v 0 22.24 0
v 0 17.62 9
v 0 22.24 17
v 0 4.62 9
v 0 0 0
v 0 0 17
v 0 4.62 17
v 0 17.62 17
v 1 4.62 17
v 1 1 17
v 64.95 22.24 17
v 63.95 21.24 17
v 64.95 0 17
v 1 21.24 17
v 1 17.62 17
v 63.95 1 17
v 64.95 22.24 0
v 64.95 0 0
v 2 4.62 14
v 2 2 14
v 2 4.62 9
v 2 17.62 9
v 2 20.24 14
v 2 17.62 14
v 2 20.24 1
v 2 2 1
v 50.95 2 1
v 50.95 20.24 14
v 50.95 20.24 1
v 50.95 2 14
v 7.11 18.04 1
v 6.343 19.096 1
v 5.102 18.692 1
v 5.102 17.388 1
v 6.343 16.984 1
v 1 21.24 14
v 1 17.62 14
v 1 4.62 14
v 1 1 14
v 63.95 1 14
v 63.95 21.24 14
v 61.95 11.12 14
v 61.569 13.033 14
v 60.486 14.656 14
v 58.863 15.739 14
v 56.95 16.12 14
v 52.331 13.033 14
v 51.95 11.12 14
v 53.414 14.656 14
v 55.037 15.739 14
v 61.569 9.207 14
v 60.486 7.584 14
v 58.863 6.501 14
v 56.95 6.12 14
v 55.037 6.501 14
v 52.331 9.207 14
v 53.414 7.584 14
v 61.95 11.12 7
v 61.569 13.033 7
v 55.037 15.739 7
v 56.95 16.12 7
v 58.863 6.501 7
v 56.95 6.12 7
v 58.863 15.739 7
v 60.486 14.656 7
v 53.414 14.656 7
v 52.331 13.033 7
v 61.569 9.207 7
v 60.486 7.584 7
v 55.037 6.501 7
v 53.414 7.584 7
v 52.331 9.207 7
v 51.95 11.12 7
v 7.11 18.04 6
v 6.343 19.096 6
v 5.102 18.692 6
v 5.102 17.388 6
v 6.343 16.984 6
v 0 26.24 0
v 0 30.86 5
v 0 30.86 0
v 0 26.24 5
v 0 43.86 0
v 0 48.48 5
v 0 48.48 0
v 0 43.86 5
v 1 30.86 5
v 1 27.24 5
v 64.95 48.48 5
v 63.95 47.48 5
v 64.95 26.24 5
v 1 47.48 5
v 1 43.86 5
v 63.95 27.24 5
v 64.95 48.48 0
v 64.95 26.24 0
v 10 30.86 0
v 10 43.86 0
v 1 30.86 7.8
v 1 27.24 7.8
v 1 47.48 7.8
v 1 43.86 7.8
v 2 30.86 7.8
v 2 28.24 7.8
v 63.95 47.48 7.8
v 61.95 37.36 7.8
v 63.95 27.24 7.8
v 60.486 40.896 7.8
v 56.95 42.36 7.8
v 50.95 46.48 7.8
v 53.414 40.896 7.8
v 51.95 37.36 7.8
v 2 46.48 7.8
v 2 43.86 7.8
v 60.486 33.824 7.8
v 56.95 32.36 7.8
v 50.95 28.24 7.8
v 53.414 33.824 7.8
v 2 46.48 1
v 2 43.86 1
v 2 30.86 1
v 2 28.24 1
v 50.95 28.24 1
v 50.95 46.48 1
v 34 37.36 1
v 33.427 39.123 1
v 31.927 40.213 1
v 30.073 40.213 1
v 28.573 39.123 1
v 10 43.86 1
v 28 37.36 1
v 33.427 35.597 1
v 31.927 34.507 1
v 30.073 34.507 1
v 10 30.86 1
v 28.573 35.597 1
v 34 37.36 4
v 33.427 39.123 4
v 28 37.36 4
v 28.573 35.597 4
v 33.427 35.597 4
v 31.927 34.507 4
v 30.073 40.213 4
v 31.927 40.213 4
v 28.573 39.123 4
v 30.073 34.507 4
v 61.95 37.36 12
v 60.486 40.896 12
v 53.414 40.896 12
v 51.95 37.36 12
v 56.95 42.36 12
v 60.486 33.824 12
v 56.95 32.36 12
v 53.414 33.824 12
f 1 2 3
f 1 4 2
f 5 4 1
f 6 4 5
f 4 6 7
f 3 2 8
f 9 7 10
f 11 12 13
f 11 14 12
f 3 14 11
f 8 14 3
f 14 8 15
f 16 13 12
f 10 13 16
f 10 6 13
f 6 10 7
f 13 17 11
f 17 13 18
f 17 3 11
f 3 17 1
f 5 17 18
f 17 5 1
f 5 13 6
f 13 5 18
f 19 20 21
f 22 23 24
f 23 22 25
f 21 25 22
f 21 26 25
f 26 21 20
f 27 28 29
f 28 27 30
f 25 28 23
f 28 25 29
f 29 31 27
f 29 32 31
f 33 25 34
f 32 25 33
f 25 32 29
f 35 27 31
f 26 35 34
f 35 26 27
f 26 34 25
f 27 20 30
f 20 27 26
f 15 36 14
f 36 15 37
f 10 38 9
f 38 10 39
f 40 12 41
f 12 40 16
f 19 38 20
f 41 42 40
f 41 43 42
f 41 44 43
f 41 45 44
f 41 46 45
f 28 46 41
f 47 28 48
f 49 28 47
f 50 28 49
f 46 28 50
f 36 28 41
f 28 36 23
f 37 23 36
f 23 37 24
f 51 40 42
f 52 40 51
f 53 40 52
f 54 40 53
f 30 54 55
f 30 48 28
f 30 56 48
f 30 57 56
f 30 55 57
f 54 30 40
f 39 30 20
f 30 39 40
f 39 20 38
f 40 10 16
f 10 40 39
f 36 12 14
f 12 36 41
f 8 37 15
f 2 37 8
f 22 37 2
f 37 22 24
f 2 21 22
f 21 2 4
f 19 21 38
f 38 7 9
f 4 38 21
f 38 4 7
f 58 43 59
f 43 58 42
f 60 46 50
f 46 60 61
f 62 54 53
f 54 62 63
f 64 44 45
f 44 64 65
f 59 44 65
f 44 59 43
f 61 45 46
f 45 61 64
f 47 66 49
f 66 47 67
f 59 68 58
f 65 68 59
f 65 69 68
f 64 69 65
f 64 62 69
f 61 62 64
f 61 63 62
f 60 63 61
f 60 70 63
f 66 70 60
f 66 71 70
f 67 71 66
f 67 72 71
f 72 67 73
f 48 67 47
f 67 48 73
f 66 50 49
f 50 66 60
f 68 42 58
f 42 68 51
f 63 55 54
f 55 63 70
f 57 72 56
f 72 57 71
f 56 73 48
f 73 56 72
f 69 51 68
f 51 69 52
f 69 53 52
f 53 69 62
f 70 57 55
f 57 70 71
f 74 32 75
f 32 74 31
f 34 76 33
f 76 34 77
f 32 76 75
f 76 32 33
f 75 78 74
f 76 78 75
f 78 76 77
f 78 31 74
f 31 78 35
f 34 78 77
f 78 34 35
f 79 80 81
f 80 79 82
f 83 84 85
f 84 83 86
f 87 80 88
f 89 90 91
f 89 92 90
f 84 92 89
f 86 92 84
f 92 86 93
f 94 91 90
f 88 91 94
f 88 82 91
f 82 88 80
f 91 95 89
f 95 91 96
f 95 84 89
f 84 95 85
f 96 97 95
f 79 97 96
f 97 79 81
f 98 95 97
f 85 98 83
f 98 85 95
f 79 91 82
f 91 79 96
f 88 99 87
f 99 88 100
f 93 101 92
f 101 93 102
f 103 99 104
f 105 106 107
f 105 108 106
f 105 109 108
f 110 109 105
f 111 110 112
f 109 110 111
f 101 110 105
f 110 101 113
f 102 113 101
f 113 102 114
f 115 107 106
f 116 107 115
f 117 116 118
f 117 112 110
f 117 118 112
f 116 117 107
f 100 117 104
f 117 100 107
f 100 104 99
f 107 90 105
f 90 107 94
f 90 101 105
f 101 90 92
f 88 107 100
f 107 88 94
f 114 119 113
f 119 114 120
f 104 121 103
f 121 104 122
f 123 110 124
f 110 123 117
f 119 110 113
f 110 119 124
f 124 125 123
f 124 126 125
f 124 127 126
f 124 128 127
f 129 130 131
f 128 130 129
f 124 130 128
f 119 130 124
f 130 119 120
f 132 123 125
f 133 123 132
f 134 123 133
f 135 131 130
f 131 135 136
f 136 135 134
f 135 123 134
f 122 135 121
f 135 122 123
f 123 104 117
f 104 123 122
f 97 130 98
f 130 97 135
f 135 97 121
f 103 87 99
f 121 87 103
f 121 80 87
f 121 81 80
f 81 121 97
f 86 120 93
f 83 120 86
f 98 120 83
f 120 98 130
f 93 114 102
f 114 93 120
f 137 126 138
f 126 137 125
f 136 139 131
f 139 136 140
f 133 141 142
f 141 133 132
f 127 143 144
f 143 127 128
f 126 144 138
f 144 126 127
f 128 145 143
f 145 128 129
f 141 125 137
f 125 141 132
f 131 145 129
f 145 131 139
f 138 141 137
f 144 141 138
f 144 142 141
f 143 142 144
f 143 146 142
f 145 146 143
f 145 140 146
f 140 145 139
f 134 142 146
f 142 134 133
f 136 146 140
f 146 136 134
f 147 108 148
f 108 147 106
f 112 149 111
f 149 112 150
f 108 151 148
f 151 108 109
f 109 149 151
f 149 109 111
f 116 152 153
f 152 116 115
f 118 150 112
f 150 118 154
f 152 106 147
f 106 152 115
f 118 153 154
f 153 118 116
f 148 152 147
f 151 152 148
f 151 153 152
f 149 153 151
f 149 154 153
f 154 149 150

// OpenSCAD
shield_length = 48.55;
shield_width = 17.84;
shield_board_height = 4; // approximate - with solder pins
shield_post_hole_radius = 1.11;
//shield_post_hole_radius = 2;

shield_post_hole_length_offset=3.8;
shield_post_hole_width_offset=2;
shield_post_height = shield_board_height + 1;
shield_post_sides=6; // determine shape of post

wall_thickness=2;
base_bottom_thickness=1;
roominess = 0.2;

base_post_platform_length = 12;
base_void_length =shield_length + 2 * roominess;
base_void_width = shield_width + 2 * roominess;
base_void_wall_height = 16;
 
base_length = base_void_length + 2 * wall_thickness + base_post_platform_length;
base_width = base_void_width + 2 * wall_thickness;
base_height = base_void_wall_height + base_bottom_thickness;

rim_overhang = wall_thickness / 2;
rim_depth = 3;

lid_void_length = base_void_length;
lid_void_width = base_void_width;
lid_void_height = 4;

lid_length = base_length;
lid_width = base_width;
lid_height = lid_void_height + base_bottom_thickness;

lid_post_radius=5;
lid_post_height=5;

usb_gap_width = 13;
    
base();

translate([0, base_width + 4, 0]){
  lid();
}

module lid(){
  difference(){
    union(){
      cube([
        lid_length,
        lid_width,
        lid_height
      ]);
      
      // rim
      translate([rim_overhang, rim_overhang, lid_height])
      cube([
        base_length - 2*rim_overhang,
        base_width - 2*rim_overhang,
        rim_depth - 0.2 
      ]);
    }

    translate([wall_thickness, wall_thickness,base_bottom_thickness])
    cube([
      lid_void_length,
      lid_void_width,
      lid_void_height + 20
    ]);
    
    // Hole for USB cable
    usb_gap_length = 10;
    translate([-1, (lid_width-usb_gap_width)/2, -1])
    cube([
      usb_gap_length + 1,
      usb_gap_width,
      20 //protrude
    ]);
  }
  
  // button protector
  protector_length_offset = 29; // how far from edge of shield
  protector_width = 3;
  protector_height = 3;

  translate([wall_thickness + protector_length_offset, lid_width/2, base_bottom_thickness])
  cylinder(r=protector_width, h=protector_height);
  
  // connection posts
  translate([wall_thickness + base_void_length + (base_post_platform_length/2), 0, base_void_wall_height + base_bottom_thickness - 10]){
    translate([0,base_width/2,0])
    cylinder(r=lid_post_radius, h=lid_post_height, $fn=8);

  }

    
}

module base(){

  
  

  difference(){
    cube([
    base_length,
    base_width,
    base_height
    ]);
    
    translate([wall_thickness, wall_thickness,base_bottom_thickness])
    cube([
    base_void_length,
    base_void_width,
    base_void_wall_height + 20 // ensure it protrudes through top
    ]);
    

    translate([rim_overhang, rim_overhang, base_height - rim_depth])
    cube([
      base_length - 2*rim_overhang,
      base_width - 2*rim_overhang,
      20 // ensure it protrudes through top
    ]);
    
    //usb cable allowance
    base_usb_gap_depth = 8;
    translate([-1, (base_width - usb_gap_width)/2, base_height - base_usb_gap_depth])
    cube([
      20,
      usb_gap_width,
      20
    ]);
    

    //connection post holes
    post_depth_roominess = 2;
    translate([wall_thickness + base_void_length + (base_post_platform_length/2), 0, base_height - rim_depth- lid_post_height - post_depth_roominess]){
      translate([0,base_width/2,0])
      cylinder(r=lid_post_radius, h=lid_post_height + 20, $fn=0);

    }
  }
  
  //posts
  translate([wall_thickness + roominess, wall_thickness + roominess, base_bottom_thickness]){

    translate([shield_post_hole_length_offset, shield_width - shield_post_hole_width_offset, 0])
    cylinder(r=shield_post_hole_radius - 0, h=shield_post_height);

  }
  
  %translate([wall_thickness + roominess, wall_thickness + roominess, base_bottom_thickness])
  shield();

}

module shield(){
  difference(){
    cube([
      shield_length,
      shield_width,
      shield_board_height // board + solder pins
    ]);
  
    translate([shield_post_hole_length_offset, shield_post_hole_width_offset, -1])
    shield_post(height=20, sides=20);
    
    translate([shield_length - shield_post_hole_length_offset, shield_post_hole_width_offset, -1])
    shield_post(height=20, sides=20);
    
    translate([shield_post_hole_length_offset, shield_width - shield_post_hole_width_offset, -1])
    shield_post(height=20, sides=20);
    
    translate([shield_length - shield_post_hole_length_offset, shield_width - shield_post_hole_width_offset, -1])
    shield_post(height=20, sides=20);
  }
}

module shield_post(height=shield_post_height, sides=0){
  cylinder(r=shield_post_hole_radius, h=height, $fn=sides);
}
